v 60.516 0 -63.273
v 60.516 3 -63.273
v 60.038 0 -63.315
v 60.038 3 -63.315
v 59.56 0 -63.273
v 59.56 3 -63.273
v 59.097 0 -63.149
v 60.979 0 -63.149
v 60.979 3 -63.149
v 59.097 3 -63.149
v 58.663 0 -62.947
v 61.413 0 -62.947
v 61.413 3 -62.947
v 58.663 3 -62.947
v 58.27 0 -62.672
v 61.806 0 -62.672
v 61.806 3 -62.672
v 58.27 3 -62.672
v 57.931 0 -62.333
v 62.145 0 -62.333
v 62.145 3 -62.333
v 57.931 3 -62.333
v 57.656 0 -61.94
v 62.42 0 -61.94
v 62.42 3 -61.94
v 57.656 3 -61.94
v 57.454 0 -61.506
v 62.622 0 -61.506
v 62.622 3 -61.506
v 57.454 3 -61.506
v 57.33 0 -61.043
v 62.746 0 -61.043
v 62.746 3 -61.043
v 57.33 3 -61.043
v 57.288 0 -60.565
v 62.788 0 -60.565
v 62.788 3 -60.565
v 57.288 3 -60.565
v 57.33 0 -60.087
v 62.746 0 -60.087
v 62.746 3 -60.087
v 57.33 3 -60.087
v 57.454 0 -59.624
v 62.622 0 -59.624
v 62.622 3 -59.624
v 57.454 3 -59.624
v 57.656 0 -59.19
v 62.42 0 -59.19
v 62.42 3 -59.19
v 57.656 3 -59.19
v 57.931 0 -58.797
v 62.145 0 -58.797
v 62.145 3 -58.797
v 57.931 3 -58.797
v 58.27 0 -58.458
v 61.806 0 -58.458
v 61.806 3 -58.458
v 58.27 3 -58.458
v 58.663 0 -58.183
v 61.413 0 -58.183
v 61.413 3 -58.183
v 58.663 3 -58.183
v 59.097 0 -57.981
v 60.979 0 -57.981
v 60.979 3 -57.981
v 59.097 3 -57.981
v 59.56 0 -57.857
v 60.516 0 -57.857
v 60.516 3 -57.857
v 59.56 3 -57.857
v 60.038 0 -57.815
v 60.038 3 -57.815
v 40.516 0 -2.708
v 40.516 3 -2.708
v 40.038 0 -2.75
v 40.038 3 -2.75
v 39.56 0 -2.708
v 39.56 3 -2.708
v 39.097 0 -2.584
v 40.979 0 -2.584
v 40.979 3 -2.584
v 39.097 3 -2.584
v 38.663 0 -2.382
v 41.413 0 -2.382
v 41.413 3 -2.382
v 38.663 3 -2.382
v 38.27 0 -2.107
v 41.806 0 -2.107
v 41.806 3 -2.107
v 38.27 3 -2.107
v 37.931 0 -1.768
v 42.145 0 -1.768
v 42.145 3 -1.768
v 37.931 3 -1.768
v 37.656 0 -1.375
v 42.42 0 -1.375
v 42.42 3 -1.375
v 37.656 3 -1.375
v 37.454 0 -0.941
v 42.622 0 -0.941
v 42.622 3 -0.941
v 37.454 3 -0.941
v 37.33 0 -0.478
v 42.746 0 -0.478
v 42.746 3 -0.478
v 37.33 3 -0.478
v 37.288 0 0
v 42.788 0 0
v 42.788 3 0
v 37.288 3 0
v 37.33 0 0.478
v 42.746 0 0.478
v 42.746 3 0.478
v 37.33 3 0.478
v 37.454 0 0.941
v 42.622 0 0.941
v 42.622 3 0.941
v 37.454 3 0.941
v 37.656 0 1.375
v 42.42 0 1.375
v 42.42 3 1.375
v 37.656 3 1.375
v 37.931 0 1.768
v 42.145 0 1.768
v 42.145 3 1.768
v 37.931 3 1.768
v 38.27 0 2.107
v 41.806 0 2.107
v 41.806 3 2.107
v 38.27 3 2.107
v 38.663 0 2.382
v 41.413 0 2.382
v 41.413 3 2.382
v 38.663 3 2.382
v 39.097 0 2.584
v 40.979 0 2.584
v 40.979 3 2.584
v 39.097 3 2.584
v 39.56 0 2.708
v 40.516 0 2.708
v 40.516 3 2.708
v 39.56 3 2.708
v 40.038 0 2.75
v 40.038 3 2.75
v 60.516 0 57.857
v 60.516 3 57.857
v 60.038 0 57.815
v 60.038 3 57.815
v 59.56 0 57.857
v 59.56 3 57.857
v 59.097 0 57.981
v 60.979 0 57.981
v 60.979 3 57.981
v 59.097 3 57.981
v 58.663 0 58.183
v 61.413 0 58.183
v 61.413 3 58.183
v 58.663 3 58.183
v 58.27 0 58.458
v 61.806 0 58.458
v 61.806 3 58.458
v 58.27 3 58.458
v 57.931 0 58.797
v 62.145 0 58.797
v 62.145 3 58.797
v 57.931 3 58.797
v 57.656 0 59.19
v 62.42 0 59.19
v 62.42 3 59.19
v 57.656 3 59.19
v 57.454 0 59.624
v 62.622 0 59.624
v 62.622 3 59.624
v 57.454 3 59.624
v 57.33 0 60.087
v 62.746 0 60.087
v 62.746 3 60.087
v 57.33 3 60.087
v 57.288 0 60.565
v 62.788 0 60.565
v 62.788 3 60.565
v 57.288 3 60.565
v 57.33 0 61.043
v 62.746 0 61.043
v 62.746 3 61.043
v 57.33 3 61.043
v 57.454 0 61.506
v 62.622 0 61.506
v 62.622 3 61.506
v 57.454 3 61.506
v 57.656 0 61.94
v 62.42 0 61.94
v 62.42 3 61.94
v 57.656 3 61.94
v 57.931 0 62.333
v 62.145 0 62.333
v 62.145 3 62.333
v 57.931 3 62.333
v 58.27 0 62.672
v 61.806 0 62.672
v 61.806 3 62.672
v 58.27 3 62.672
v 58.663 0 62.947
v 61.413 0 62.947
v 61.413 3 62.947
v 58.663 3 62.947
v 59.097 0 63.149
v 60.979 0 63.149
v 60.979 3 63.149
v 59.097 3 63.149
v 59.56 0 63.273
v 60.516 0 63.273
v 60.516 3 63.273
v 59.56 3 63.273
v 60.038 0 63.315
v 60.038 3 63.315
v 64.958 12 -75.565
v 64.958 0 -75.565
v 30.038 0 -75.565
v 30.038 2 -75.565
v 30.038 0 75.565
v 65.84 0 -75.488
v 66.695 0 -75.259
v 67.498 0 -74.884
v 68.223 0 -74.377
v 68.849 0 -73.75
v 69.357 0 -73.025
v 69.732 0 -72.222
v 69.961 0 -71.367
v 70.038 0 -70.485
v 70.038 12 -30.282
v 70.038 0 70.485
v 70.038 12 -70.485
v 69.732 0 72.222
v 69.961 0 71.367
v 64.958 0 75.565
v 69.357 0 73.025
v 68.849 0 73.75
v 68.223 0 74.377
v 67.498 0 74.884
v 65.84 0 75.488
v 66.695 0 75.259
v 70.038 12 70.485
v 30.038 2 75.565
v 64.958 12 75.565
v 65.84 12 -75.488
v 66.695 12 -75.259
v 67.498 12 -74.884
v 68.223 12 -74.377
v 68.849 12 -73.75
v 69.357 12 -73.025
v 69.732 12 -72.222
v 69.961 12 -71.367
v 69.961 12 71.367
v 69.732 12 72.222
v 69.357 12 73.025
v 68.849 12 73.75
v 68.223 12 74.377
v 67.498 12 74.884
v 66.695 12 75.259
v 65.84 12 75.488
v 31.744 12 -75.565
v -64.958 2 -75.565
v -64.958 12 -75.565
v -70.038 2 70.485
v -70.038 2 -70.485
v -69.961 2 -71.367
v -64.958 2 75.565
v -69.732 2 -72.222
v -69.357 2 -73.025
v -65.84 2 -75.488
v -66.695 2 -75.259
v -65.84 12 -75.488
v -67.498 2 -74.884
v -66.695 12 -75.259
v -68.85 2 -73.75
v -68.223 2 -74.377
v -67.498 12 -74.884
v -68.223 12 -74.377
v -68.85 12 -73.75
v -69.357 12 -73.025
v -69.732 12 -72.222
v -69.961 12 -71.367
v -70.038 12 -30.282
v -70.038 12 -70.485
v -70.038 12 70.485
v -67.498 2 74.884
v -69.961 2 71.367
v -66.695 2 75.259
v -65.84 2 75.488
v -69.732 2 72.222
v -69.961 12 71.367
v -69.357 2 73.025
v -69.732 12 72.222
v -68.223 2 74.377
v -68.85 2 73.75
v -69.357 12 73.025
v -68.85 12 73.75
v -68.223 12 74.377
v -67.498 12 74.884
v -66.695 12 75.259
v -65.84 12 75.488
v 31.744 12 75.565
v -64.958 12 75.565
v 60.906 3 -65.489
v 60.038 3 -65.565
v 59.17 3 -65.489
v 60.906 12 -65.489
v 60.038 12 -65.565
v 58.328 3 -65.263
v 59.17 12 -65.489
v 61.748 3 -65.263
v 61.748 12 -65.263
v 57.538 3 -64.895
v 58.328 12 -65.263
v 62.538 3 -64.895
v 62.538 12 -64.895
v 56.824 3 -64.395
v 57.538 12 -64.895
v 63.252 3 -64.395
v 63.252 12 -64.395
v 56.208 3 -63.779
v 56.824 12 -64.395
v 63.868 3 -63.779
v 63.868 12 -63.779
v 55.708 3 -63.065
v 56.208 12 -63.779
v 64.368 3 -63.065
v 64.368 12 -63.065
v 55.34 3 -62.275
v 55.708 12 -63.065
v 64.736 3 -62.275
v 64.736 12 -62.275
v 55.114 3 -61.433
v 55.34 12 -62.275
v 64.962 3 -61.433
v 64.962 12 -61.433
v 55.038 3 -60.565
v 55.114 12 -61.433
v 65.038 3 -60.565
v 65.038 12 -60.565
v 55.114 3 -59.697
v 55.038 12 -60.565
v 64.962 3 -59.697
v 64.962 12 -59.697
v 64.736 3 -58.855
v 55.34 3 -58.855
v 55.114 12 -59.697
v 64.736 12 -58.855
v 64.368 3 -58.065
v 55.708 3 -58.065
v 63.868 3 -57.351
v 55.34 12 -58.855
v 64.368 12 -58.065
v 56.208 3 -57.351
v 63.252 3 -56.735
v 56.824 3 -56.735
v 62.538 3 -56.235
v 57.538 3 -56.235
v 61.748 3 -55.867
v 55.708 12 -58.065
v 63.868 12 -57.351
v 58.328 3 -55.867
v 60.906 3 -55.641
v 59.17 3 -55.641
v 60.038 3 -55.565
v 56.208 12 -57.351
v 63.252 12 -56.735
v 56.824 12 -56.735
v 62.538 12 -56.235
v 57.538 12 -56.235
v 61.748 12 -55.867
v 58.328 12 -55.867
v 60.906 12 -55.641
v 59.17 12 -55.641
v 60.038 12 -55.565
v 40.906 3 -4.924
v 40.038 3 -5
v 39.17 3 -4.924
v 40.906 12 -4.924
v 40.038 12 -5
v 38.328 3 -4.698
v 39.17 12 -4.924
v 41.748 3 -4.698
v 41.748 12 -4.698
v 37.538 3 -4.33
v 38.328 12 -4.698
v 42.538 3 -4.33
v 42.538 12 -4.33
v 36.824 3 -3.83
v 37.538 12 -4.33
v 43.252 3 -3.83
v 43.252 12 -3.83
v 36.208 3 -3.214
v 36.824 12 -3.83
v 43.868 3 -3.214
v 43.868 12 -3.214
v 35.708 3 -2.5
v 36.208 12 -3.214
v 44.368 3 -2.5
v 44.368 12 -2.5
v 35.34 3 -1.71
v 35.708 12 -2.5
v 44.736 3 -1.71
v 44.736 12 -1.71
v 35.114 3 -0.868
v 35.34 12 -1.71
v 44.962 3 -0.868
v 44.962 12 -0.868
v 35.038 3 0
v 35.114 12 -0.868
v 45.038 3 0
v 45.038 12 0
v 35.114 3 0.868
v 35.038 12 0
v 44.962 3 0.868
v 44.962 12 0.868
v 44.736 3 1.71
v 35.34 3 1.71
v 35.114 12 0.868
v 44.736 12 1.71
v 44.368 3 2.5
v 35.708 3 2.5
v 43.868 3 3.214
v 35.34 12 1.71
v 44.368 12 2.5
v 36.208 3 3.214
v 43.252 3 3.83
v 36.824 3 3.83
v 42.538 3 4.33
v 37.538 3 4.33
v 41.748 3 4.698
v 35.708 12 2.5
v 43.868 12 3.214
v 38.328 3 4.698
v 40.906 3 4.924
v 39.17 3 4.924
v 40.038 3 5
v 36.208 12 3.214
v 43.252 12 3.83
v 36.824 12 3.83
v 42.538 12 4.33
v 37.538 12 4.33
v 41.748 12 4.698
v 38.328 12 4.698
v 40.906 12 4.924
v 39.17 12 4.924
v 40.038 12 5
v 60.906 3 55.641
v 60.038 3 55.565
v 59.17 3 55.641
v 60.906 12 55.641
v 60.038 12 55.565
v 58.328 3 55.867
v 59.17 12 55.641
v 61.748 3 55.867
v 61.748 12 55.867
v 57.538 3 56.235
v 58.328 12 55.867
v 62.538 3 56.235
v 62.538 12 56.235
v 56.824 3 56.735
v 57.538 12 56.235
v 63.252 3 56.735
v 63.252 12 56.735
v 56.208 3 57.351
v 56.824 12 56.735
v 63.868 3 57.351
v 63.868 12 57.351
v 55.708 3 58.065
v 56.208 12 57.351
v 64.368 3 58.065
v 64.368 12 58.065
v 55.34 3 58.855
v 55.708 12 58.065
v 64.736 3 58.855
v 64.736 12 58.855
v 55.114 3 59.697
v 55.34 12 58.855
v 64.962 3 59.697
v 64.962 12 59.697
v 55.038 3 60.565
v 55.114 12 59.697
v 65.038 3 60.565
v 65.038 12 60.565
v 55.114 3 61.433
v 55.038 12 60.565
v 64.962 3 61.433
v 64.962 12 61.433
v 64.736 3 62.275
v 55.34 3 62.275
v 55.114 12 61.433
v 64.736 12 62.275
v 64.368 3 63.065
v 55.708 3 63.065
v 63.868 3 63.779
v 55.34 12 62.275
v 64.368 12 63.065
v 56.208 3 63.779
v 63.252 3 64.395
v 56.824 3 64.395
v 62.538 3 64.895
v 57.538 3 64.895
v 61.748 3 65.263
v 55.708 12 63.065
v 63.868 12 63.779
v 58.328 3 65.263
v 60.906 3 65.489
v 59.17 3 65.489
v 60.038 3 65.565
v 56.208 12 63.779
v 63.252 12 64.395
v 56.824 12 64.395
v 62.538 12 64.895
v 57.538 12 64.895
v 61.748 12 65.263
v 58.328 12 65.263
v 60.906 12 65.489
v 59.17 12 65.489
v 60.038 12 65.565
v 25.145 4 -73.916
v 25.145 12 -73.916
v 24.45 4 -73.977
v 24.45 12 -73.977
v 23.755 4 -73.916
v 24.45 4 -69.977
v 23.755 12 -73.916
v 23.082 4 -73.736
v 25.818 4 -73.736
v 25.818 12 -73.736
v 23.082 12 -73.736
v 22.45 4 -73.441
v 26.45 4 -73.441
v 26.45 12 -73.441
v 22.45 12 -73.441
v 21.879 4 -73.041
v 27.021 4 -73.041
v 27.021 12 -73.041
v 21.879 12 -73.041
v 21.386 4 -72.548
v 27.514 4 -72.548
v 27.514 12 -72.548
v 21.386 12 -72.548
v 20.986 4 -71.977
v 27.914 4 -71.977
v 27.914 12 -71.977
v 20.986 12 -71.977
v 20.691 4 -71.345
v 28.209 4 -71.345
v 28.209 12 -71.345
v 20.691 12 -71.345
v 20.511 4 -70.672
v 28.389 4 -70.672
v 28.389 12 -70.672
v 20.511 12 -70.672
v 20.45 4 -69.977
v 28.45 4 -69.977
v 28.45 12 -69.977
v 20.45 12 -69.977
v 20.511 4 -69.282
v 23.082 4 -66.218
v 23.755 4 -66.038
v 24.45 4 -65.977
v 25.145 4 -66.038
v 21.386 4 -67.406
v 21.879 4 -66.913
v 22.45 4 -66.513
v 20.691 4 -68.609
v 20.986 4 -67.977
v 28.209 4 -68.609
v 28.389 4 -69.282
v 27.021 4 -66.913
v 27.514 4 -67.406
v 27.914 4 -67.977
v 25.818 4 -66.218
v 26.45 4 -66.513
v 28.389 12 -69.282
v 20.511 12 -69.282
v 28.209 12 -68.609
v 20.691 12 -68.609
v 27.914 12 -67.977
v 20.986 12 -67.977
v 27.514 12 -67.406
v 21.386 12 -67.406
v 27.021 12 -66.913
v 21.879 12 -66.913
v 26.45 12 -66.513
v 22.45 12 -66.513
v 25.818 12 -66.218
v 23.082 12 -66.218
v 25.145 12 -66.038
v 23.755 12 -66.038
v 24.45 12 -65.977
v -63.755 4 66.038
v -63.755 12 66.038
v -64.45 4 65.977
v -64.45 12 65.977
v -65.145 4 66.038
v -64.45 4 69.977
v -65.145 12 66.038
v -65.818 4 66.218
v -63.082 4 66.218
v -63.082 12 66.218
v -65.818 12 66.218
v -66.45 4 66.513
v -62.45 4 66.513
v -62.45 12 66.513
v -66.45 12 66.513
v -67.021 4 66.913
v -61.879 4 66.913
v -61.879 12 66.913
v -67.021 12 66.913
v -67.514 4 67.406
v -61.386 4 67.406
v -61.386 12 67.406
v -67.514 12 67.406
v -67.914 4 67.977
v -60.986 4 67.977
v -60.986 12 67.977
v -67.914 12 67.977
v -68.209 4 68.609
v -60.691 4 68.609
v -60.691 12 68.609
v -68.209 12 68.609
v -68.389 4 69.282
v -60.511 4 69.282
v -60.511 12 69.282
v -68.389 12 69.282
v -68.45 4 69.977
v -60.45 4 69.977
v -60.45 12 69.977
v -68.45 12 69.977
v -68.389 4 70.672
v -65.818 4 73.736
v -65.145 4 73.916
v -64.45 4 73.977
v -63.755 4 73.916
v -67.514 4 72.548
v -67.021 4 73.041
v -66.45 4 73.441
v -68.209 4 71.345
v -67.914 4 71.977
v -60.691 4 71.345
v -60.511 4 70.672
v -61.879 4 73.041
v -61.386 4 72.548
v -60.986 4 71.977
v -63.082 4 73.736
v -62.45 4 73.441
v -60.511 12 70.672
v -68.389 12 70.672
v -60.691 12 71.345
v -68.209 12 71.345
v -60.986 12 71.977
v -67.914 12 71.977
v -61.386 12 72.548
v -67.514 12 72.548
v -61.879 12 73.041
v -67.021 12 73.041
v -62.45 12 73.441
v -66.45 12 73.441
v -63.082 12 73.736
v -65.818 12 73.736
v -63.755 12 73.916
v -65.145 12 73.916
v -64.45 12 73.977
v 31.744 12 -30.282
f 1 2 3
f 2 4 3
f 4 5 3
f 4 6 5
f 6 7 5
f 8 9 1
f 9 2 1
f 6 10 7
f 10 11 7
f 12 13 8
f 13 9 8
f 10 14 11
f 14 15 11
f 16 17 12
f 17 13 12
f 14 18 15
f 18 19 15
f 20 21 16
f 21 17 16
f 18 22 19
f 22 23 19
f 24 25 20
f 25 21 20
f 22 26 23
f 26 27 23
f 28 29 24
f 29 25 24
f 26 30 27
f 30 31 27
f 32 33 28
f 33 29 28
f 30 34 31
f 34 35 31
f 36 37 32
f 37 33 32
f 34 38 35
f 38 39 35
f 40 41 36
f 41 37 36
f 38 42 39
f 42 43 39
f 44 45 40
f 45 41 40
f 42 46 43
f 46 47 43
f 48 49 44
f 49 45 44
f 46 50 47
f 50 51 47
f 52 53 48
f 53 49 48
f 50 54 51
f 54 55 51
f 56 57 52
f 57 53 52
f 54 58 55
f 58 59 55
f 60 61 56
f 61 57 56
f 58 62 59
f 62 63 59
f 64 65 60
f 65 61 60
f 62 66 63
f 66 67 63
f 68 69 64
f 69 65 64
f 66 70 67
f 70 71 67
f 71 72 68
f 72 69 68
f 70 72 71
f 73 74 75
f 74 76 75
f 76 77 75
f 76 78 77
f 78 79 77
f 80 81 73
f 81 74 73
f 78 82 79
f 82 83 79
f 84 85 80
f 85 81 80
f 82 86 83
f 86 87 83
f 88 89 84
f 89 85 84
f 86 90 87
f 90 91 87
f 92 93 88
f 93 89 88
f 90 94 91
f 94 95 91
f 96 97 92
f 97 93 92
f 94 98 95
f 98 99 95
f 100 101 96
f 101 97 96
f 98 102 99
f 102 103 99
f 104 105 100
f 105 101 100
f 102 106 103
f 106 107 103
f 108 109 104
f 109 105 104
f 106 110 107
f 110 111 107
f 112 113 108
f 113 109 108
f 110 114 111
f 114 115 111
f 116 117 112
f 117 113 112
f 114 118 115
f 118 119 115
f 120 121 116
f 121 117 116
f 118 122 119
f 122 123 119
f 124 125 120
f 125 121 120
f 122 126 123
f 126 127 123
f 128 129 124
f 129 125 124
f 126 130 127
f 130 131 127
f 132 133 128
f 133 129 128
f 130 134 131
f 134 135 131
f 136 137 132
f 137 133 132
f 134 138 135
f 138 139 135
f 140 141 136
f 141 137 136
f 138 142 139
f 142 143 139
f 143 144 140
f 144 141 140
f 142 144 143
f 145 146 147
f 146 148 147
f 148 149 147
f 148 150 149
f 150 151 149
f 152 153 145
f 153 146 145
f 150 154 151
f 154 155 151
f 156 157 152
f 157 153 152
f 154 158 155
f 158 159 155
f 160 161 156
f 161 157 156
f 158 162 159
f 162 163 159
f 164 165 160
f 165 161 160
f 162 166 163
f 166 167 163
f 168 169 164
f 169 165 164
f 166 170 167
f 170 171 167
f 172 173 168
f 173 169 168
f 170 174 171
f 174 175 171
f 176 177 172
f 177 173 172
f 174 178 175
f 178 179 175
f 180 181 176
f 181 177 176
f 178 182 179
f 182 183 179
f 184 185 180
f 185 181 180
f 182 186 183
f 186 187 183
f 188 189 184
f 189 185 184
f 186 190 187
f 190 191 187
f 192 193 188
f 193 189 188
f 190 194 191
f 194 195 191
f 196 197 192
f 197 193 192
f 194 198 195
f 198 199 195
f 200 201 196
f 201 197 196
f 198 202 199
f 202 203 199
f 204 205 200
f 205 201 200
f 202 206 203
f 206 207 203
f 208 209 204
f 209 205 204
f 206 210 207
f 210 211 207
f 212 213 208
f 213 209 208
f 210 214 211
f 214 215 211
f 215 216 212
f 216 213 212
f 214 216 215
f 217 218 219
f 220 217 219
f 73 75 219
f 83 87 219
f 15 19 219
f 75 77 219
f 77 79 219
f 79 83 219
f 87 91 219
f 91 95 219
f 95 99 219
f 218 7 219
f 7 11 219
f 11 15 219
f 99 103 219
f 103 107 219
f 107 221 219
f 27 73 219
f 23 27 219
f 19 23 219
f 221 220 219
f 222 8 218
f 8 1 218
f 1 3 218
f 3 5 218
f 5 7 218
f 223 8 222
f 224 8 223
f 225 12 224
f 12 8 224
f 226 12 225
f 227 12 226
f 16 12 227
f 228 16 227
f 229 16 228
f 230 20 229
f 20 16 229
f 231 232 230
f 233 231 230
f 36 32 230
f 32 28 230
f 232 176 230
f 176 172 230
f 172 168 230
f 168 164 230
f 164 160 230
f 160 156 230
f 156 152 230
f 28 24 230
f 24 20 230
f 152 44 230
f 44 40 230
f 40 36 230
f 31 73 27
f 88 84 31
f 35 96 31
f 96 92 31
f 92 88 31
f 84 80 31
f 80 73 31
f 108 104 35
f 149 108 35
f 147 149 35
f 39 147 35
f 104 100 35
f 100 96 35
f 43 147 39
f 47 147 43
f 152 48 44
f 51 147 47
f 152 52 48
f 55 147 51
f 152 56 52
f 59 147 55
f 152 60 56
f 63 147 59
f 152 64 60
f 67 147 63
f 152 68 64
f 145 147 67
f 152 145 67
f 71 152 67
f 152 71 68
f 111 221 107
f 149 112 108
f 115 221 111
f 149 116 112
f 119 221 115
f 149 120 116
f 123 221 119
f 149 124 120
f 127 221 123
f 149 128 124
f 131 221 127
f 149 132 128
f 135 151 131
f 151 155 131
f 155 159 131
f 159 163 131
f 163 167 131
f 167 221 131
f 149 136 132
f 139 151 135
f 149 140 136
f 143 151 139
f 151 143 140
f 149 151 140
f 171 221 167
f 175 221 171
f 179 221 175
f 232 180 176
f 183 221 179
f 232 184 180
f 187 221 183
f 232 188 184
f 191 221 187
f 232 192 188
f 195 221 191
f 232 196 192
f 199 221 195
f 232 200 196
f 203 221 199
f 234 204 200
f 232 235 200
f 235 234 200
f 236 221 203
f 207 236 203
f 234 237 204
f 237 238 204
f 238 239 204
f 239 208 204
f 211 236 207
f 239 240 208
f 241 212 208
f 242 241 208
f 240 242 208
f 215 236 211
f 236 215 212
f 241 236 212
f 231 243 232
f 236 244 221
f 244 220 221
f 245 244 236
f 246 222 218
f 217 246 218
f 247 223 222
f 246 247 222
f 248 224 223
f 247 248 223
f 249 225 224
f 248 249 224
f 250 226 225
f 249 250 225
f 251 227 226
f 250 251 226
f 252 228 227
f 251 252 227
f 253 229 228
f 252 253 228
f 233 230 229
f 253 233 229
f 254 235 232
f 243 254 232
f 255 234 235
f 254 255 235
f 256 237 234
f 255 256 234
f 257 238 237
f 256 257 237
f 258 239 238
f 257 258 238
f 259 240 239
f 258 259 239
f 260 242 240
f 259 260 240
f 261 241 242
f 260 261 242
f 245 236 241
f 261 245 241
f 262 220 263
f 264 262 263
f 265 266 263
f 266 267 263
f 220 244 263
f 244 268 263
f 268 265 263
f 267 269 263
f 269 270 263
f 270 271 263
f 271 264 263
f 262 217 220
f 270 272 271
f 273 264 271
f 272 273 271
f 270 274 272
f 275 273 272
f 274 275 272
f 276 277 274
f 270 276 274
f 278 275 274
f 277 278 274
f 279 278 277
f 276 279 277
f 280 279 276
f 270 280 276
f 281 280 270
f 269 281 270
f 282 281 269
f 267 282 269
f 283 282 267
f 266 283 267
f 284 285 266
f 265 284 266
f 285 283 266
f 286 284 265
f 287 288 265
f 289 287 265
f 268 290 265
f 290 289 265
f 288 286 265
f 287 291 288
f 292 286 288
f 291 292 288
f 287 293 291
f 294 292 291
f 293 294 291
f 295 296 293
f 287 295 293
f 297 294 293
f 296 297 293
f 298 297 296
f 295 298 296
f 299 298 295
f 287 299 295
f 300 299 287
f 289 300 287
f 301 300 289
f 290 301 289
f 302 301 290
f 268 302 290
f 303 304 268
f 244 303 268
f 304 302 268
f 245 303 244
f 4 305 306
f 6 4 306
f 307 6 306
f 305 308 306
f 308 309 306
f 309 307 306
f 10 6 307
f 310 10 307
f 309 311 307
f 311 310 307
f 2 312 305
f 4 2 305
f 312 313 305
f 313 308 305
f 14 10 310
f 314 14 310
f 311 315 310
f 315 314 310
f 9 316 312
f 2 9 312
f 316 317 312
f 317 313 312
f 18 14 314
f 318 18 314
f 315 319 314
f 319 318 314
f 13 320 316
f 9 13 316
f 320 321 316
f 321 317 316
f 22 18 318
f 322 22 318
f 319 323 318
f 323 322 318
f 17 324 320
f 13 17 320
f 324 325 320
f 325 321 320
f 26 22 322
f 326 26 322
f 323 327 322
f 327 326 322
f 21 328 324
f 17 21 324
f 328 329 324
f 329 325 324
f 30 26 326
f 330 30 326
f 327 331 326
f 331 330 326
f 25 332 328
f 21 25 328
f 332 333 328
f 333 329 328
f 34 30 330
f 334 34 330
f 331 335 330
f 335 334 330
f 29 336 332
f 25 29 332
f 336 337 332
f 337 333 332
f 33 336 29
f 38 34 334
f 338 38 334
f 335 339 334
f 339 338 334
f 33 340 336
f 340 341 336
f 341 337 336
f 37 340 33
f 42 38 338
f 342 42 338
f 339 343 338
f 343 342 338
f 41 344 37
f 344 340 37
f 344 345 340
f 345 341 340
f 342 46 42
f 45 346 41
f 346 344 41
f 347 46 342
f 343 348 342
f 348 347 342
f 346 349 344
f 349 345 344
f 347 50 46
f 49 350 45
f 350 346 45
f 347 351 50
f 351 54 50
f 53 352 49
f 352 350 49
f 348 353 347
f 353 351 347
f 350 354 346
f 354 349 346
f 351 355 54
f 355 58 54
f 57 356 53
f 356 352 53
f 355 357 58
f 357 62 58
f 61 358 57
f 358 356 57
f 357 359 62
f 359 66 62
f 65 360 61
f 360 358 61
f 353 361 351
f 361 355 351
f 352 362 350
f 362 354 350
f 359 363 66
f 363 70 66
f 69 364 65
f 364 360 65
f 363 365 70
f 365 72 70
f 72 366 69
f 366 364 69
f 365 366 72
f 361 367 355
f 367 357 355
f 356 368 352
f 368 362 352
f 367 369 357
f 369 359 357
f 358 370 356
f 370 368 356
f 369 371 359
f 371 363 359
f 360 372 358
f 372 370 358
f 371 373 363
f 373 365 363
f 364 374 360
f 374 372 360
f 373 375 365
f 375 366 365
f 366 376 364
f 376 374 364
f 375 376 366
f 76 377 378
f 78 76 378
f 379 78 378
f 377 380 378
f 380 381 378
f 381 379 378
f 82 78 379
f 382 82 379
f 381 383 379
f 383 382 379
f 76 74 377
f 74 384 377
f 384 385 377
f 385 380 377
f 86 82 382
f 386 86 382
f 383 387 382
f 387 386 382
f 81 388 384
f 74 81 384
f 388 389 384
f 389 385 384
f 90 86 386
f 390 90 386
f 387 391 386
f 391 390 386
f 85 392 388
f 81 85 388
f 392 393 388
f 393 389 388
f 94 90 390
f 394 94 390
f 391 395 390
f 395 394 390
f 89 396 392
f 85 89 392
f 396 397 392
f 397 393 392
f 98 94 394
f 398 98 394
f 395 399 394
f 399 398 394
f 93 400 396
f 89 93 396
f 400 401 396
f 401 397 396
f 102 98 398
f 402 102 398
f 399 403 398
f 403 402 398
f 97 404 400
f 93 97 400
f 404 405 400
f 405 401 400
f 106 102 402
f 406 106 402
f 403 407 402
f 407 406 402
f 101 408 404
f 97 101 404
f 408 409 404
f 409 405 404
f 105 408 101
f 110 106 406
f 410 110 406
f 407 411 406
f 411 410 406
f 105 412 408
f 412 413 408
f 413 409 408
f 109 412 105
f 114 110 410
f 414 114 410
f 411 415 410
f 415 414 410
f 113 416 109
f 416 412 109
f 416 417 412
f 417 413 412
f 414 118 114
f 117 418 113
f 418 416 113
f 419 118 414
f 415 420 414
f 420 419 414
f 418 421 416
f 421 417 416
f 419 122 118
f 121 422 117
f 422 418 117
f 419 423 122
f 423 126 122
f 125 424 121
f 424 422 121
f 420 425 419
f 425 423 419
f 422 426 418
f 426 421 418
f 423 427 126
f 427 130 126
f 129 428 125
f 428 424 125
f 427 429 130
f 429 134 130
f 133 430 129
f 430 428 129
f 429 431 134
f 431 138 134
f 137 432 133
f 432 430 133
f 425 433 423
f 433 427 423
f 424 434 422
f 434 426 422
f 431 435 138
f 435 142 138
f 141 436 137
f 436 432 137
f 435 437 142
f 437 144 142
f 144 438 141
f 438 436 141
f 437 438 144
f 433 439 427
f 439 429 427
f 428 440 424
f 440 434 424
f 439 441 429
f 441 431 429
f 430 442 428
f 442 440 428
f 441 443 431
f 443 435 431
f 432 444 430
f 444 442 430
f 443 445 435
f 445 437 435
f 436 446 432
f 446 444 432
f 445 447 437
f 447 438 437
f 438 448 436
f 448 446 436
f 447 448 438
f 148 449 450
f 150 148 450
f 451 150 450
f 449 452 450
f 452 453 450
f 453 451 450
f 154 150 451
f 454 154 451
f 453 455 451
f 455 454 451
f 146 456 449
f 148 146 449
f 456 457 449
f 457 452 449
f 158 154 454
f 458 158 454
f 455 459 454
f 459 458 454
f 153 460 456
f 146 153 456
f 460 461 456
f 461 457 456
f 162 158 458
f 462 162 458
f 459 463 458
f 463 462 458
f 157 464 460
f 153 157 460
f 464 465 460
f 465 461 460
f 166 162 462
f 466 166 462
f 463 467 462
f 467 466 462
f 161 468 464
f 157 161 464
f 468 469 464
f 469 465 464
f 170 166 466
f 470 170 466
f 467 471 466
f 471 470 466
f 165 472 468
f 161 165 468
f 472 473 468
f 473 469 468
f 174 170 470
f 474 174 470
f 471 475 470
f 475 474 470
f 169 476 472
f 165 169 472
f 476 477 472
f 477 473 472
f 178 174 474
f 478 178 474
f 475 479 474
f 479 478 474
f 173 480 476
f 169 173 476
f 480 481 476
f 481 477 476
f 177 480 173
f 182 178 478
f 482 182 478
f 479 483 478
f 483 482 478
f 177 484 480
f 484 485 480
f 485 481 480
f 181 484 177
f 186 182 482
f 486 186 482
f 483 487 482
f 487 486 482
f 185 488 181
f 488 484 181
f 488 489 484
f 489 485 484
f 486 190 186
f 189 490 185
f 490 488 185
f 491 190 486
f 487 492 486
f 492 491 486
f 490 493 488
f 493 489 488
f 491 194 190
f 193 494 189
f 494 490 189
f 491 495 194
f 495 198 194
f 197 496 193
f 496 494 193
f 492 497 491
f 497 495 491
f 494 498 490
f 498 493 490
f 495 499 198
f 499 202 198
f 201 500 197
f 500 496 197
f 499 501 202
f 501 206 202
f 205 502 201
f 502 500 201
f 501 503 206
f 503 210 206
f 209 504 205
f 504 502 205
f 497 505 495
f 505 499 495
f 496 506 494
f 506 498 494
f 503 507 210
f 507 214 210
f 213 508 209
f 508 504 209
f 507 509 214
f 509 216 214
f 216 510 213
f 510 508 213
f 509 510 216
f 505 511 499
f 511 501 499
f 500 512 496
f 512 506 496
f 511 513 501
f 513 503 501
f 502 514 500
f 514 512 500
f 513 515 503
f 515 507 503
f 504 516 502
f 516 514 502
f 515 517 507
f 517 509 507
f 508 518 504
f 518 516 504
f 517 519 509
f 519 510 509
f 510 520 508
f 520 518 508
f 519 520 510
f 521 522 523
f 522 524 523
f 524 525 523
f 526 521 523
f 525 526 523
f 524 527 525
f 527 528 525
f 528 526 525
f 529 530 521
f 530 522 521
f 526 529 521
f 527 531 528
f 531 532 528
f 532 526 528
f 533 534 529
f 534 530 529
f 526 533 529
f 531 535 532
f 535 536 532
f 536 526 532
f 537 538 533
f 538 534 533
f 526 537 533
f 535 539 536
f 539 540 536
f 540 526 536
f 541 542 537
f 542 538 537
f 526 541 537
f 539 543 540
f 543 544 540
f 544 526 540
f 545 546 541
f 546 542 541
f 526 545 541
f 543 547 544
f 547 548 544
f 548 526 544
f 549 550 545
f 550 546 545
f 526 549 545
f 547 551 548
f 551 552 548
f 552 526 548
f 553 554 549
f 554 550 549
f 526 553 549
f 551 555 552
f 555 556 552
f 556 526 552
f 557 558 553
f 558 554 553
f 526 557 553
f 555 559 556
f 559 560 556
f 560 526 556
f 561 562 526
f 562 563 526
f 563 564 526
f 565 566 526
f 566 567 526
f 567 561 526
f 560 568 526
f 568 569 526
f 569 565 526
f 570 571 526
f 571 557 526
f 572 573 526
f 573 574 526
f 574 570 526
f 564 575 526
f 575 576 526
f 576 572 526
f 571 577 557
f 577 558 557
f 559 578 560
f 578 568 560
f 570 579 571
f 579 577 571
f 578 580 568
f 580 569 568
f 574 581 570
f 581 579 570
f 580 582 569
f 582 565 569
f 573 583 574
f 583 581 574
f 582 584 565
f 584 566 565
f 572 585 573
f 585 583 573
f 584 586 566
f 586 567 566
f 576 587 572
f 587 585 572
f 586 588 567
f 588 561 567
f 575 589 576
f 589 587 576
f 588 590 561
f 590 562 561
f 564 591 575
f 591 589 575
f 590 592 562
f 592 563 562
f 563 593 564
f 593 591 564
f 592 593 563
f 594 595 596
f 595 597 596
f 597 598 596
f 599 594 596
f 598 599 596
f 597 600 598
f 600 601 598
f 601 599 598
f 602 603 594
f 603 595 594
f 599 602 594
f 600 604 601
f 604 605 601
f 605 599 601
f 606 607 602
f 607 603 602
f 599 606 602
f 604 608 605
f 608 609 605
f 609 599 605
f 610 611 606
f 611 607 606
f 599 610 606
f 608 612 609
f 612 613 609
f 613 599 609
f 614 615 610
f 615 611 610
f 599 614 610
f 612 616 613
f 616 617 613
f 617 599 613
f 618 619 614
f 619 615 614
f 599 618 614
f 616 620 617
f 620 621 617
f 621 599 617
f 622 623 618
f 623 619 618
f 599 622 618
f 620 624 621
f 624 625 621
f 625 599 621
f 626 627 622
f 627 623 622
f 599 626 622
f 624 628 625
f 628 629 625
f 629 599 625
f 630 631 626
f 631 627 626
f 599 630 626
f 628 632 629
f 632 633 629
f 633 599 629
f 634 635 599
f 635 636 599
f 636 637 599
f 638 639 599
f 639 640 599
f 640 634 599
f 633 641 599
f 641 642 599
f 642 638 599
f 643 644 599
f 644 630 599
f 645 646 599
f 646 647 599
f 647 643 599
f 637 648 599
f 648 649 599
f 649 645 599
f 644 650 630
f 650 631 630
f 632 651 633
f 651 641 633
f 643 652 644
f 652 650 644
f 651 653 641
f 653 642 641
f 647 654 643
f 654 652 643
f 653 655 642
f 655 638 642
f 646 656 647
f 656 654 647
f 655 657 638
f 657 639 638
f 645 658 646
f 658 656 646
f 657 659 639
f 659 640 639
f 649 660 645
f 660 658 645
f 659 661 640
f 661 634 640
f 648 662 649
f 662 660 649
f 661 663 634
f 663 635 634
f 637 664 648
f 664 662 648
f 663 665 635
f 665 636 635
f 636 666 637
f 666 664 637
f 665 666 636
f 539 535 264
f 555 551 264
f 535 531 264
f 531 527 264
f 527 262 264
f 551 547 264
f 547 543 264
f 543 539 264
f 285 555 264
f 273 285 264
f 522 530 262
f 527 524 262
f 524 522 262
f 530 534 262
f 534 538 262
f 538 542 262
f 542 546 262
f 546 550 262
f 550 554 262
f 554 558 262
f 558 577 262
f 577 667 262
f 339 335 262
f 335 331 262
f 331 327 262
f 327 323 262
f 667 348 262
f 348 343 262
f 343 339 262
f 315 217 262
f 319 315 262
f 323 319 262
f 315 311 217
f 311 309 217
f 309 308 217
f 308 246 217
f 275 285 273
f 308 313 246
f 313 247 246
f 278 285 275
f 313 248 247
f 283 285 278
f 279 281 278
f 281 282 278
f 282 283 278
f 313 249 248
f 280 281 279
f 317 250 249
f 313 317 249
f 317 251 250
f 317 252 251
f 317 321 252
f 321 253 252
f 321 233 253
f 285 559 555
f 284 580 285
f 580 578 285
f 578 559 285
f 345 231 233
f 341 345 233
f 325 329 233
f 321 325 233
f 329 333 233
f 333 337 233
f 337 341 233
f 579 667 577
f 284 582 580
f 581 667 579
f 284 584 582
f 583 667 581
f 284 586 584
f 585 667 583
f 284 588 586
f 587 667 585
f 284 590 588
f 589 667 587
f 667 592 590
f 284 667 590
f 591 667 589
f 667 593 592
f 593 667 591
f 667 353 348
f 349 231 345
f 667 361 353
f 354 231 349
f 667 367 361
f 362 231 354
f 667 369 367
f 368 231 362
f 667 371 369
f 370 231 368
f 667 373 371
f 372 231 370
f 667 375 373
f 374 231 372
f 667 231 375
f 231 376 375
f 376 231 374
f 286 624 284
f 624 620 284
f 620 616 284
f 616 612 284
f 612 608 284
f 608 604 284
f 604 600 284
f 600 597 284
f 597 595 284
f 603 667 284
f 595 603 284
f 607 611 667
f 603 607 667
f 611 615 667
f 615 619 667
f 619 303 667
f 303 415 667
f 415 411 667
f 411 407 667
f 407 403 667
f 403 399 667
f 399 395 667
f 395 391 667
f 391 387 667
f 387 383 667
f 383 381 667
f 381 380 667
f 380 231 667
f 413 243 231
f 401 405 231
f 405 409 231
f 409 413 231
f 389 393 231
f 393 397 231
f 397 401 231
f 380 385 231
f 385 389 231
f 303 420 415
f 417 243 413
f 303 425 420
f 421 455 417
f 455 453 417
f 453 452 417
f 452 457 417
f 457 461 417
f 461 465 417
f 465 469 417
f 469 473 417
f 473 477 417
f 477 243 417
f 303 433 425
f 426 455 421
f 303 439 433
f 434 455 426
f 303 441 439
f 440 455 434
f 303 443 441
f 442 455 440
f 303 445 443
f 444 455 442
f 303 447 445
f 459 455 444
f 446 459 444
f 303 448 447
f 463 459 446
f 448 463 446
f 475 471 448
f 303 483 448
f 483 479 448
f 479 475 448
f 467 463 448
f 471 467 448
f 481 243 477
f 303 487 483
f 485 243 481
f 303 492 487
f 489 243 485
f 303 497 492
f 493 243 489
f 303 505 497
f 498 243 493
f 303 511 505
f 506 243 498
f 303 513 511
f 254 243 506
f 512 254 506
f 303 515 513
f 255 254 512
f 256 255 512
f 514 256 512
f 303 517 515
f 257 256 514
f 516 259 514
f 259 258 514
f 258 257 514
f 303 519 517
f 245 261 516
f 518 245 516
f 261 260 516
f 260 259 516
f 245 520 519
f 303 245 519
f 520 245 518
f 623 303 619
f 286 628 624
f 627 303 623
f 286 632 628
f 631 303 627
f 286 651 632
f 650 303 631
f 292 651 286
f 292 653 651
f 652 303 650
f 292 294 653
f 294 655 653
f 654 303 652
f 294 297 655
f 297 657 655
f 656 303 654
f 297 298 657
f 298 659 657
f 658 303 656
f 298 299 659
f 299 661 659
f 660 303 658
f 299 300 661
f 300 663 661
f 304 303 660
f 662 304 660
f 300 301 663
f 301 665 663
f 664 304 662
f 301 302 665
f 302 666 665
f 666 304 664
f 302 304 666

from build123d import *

# Parameters (mm, degrees)
SKETCH1_W           = 140.076
SKETCH1_H           = 151.13
BOSS_EXTRUDE1_DEPTH = 12
SKETCH2_W           = 100.076
SKETCH2_H           = 151.13
CUT_EXTRUDE1_DEPTH  = 2
SKETCH3_R           = 4
CUT_EXTRUDE2_DEPTH  = 8
CUT_EXTRUDE3_REACH  = 105.727
SKETCH4_R           = 2.75
FILLET1_R           = 5.08
SKETCH5_R           = 5
CUT_EXTRUDE4_DEPTH  = 9


with BuildPart() as part:
    # Sketch1 → Boss-Extrude1 (new body)
    with BuildSketch(Plane(origin=(0, 0, 0), x_dir=(1, 0, 0), z_dir=(0, 1, 0))):
        Rectangle(SKETCH1_W, SKETCH1_H)
    extrude(amount=BOSS_EXTRUDE1_DEPTH)

    # Sketch2 → Cut-Extrude1 (cut)
    with BuildSketch(Plane.XZ):
        with Locations((-20, 0)):
            Rectangle(SKETCH2_W, SKETCH2_H)
    extrude(amount=-CUT_EXTRUDE1_DEPTH, mode=Mode.SUBTRACT)

    # Sketch3 → Cut-Extrude2 (cut)
    with BuildSketch(Plane(origin=(0, 12, 0), x_dir=(1, 0, 0), z_dir=(0, 1, 0))):
        with Locations(Location((24.45, 69.977, 0), (0, 0, 270))):
            Circle(SKETCH3_R)
        with Locations(Location((-64.45, -69.977, 0), (0, 0, 270))):
            Circle(SKETCH3_R)
    extrude(amount=-CUT_EXTRUDE2_DEPTH, mode=Mode.SUBTRACT)

    # Sketch4 → Cut-Extrude3 (cut, up to next)
    with BuildSketch(Plane(origin=(0, 12, 0), x_dir=(1, 0, 0), z_dir=(0, 1, 0)), mode=Mode.PRIVATE) as cut_extrude3_sk1:
        with Locations(Location((40.038, 0, 0), (0, 0, 270))):
            Circle(SKETCH4_R)
    cut_extrude3_tool1 = extrude(cut_extrude3_sk1.sketch, amount=-CUT_EXTRUDE3_REACH, mode=Mode.PRIVATE) & part.part
    # Sketch4 → Cut-Extrude3 (cut, up to next)
    with BuildSketch(Plane(origin=(0, 12, 0), x_dir=(1, 0, 0), z_dir=(0, 1, 0)), mode=Mode.PRIVATE) as cut_extrude3_sk2:
        with Locations(Location((60.038, -60.565, 0), (0, 0, 270))):
            Circle(SKETCH4_R)
    cut_extrude3_tool2 = extrude(cut_extrude3_sk2.sketch, amount=-CUT_EXTRUDE3_REACH, mode=Mode.PRIVATE) & part.part
    # Sketch4 → Cut-Extrude3 (cut, up to next)
    with BuildSketch(Plane(origin=(0, 12, 0), x_dir=(1, 0, 0), z_dir=(0, 1, 0)), mode=Mode.PRIVATE) as cut_extrude3_sk3:
        with Locations(Location((60.038, 60.565, 0), (0, 0, 270))):
            Circle(SKETCH4_R)
    cut_extrude3_tool3 = extrude(cut_extrude3_sk3.sketch, amount=-CUT_EXTRUDE3_REACH, mode=Mode.PRIVATE) & part.part
    add(cut_extrude3_tool1.solids().sort_by_distance((40.038, 12, 0))[0], mode=Mode.SUBTRACT)
    add(cut_extrude3_tool2.solids().sort_by_distance((60.038, 12, 60.565))[0], mode=Mode.SUBTRACT)
    add(cut_extrude3_tool3.solids().sort_by_distance((60.038, 12, -60.565))[0], mode=Mode.SUBTRACT)

    # Fillet1
    fillet1_edges = [part.edges().sort_by_distance(p)[0] for p in [
        (70.038, 6, 75.565),
        (-70.038, 7, 75.565),
        (-70.038, 7, -75.565),
        (70.038, 6, -75.565),
    ]]
    fillet(fillet1_edges, radius=FILLET1_R)

    # Sketch5 → Cut-Extrude4 (cut)
    with BuildSketch(Plane(origin=(0, 12, 0), x_dir=(1, 0, 0), z_dir=(0, 1, 0))):
        with Locations(Location((60.038, 60.565, 0), (0, 0, 270))):
            Circle(SKETCH5_R)
        with Locations(Location((40.038, 0, 0), (0, 0, 270))):
            Circle(SKETCH5_R)
        with Locations(Location((60.038, -60.565, 0), (0, 0, 270))):
            Circle(SKETCH5_R)
    extrude(amount=-CUT_EXTRUDE4_DEPTH, mode=Mode.SUBTRACT)


solid = part.part
